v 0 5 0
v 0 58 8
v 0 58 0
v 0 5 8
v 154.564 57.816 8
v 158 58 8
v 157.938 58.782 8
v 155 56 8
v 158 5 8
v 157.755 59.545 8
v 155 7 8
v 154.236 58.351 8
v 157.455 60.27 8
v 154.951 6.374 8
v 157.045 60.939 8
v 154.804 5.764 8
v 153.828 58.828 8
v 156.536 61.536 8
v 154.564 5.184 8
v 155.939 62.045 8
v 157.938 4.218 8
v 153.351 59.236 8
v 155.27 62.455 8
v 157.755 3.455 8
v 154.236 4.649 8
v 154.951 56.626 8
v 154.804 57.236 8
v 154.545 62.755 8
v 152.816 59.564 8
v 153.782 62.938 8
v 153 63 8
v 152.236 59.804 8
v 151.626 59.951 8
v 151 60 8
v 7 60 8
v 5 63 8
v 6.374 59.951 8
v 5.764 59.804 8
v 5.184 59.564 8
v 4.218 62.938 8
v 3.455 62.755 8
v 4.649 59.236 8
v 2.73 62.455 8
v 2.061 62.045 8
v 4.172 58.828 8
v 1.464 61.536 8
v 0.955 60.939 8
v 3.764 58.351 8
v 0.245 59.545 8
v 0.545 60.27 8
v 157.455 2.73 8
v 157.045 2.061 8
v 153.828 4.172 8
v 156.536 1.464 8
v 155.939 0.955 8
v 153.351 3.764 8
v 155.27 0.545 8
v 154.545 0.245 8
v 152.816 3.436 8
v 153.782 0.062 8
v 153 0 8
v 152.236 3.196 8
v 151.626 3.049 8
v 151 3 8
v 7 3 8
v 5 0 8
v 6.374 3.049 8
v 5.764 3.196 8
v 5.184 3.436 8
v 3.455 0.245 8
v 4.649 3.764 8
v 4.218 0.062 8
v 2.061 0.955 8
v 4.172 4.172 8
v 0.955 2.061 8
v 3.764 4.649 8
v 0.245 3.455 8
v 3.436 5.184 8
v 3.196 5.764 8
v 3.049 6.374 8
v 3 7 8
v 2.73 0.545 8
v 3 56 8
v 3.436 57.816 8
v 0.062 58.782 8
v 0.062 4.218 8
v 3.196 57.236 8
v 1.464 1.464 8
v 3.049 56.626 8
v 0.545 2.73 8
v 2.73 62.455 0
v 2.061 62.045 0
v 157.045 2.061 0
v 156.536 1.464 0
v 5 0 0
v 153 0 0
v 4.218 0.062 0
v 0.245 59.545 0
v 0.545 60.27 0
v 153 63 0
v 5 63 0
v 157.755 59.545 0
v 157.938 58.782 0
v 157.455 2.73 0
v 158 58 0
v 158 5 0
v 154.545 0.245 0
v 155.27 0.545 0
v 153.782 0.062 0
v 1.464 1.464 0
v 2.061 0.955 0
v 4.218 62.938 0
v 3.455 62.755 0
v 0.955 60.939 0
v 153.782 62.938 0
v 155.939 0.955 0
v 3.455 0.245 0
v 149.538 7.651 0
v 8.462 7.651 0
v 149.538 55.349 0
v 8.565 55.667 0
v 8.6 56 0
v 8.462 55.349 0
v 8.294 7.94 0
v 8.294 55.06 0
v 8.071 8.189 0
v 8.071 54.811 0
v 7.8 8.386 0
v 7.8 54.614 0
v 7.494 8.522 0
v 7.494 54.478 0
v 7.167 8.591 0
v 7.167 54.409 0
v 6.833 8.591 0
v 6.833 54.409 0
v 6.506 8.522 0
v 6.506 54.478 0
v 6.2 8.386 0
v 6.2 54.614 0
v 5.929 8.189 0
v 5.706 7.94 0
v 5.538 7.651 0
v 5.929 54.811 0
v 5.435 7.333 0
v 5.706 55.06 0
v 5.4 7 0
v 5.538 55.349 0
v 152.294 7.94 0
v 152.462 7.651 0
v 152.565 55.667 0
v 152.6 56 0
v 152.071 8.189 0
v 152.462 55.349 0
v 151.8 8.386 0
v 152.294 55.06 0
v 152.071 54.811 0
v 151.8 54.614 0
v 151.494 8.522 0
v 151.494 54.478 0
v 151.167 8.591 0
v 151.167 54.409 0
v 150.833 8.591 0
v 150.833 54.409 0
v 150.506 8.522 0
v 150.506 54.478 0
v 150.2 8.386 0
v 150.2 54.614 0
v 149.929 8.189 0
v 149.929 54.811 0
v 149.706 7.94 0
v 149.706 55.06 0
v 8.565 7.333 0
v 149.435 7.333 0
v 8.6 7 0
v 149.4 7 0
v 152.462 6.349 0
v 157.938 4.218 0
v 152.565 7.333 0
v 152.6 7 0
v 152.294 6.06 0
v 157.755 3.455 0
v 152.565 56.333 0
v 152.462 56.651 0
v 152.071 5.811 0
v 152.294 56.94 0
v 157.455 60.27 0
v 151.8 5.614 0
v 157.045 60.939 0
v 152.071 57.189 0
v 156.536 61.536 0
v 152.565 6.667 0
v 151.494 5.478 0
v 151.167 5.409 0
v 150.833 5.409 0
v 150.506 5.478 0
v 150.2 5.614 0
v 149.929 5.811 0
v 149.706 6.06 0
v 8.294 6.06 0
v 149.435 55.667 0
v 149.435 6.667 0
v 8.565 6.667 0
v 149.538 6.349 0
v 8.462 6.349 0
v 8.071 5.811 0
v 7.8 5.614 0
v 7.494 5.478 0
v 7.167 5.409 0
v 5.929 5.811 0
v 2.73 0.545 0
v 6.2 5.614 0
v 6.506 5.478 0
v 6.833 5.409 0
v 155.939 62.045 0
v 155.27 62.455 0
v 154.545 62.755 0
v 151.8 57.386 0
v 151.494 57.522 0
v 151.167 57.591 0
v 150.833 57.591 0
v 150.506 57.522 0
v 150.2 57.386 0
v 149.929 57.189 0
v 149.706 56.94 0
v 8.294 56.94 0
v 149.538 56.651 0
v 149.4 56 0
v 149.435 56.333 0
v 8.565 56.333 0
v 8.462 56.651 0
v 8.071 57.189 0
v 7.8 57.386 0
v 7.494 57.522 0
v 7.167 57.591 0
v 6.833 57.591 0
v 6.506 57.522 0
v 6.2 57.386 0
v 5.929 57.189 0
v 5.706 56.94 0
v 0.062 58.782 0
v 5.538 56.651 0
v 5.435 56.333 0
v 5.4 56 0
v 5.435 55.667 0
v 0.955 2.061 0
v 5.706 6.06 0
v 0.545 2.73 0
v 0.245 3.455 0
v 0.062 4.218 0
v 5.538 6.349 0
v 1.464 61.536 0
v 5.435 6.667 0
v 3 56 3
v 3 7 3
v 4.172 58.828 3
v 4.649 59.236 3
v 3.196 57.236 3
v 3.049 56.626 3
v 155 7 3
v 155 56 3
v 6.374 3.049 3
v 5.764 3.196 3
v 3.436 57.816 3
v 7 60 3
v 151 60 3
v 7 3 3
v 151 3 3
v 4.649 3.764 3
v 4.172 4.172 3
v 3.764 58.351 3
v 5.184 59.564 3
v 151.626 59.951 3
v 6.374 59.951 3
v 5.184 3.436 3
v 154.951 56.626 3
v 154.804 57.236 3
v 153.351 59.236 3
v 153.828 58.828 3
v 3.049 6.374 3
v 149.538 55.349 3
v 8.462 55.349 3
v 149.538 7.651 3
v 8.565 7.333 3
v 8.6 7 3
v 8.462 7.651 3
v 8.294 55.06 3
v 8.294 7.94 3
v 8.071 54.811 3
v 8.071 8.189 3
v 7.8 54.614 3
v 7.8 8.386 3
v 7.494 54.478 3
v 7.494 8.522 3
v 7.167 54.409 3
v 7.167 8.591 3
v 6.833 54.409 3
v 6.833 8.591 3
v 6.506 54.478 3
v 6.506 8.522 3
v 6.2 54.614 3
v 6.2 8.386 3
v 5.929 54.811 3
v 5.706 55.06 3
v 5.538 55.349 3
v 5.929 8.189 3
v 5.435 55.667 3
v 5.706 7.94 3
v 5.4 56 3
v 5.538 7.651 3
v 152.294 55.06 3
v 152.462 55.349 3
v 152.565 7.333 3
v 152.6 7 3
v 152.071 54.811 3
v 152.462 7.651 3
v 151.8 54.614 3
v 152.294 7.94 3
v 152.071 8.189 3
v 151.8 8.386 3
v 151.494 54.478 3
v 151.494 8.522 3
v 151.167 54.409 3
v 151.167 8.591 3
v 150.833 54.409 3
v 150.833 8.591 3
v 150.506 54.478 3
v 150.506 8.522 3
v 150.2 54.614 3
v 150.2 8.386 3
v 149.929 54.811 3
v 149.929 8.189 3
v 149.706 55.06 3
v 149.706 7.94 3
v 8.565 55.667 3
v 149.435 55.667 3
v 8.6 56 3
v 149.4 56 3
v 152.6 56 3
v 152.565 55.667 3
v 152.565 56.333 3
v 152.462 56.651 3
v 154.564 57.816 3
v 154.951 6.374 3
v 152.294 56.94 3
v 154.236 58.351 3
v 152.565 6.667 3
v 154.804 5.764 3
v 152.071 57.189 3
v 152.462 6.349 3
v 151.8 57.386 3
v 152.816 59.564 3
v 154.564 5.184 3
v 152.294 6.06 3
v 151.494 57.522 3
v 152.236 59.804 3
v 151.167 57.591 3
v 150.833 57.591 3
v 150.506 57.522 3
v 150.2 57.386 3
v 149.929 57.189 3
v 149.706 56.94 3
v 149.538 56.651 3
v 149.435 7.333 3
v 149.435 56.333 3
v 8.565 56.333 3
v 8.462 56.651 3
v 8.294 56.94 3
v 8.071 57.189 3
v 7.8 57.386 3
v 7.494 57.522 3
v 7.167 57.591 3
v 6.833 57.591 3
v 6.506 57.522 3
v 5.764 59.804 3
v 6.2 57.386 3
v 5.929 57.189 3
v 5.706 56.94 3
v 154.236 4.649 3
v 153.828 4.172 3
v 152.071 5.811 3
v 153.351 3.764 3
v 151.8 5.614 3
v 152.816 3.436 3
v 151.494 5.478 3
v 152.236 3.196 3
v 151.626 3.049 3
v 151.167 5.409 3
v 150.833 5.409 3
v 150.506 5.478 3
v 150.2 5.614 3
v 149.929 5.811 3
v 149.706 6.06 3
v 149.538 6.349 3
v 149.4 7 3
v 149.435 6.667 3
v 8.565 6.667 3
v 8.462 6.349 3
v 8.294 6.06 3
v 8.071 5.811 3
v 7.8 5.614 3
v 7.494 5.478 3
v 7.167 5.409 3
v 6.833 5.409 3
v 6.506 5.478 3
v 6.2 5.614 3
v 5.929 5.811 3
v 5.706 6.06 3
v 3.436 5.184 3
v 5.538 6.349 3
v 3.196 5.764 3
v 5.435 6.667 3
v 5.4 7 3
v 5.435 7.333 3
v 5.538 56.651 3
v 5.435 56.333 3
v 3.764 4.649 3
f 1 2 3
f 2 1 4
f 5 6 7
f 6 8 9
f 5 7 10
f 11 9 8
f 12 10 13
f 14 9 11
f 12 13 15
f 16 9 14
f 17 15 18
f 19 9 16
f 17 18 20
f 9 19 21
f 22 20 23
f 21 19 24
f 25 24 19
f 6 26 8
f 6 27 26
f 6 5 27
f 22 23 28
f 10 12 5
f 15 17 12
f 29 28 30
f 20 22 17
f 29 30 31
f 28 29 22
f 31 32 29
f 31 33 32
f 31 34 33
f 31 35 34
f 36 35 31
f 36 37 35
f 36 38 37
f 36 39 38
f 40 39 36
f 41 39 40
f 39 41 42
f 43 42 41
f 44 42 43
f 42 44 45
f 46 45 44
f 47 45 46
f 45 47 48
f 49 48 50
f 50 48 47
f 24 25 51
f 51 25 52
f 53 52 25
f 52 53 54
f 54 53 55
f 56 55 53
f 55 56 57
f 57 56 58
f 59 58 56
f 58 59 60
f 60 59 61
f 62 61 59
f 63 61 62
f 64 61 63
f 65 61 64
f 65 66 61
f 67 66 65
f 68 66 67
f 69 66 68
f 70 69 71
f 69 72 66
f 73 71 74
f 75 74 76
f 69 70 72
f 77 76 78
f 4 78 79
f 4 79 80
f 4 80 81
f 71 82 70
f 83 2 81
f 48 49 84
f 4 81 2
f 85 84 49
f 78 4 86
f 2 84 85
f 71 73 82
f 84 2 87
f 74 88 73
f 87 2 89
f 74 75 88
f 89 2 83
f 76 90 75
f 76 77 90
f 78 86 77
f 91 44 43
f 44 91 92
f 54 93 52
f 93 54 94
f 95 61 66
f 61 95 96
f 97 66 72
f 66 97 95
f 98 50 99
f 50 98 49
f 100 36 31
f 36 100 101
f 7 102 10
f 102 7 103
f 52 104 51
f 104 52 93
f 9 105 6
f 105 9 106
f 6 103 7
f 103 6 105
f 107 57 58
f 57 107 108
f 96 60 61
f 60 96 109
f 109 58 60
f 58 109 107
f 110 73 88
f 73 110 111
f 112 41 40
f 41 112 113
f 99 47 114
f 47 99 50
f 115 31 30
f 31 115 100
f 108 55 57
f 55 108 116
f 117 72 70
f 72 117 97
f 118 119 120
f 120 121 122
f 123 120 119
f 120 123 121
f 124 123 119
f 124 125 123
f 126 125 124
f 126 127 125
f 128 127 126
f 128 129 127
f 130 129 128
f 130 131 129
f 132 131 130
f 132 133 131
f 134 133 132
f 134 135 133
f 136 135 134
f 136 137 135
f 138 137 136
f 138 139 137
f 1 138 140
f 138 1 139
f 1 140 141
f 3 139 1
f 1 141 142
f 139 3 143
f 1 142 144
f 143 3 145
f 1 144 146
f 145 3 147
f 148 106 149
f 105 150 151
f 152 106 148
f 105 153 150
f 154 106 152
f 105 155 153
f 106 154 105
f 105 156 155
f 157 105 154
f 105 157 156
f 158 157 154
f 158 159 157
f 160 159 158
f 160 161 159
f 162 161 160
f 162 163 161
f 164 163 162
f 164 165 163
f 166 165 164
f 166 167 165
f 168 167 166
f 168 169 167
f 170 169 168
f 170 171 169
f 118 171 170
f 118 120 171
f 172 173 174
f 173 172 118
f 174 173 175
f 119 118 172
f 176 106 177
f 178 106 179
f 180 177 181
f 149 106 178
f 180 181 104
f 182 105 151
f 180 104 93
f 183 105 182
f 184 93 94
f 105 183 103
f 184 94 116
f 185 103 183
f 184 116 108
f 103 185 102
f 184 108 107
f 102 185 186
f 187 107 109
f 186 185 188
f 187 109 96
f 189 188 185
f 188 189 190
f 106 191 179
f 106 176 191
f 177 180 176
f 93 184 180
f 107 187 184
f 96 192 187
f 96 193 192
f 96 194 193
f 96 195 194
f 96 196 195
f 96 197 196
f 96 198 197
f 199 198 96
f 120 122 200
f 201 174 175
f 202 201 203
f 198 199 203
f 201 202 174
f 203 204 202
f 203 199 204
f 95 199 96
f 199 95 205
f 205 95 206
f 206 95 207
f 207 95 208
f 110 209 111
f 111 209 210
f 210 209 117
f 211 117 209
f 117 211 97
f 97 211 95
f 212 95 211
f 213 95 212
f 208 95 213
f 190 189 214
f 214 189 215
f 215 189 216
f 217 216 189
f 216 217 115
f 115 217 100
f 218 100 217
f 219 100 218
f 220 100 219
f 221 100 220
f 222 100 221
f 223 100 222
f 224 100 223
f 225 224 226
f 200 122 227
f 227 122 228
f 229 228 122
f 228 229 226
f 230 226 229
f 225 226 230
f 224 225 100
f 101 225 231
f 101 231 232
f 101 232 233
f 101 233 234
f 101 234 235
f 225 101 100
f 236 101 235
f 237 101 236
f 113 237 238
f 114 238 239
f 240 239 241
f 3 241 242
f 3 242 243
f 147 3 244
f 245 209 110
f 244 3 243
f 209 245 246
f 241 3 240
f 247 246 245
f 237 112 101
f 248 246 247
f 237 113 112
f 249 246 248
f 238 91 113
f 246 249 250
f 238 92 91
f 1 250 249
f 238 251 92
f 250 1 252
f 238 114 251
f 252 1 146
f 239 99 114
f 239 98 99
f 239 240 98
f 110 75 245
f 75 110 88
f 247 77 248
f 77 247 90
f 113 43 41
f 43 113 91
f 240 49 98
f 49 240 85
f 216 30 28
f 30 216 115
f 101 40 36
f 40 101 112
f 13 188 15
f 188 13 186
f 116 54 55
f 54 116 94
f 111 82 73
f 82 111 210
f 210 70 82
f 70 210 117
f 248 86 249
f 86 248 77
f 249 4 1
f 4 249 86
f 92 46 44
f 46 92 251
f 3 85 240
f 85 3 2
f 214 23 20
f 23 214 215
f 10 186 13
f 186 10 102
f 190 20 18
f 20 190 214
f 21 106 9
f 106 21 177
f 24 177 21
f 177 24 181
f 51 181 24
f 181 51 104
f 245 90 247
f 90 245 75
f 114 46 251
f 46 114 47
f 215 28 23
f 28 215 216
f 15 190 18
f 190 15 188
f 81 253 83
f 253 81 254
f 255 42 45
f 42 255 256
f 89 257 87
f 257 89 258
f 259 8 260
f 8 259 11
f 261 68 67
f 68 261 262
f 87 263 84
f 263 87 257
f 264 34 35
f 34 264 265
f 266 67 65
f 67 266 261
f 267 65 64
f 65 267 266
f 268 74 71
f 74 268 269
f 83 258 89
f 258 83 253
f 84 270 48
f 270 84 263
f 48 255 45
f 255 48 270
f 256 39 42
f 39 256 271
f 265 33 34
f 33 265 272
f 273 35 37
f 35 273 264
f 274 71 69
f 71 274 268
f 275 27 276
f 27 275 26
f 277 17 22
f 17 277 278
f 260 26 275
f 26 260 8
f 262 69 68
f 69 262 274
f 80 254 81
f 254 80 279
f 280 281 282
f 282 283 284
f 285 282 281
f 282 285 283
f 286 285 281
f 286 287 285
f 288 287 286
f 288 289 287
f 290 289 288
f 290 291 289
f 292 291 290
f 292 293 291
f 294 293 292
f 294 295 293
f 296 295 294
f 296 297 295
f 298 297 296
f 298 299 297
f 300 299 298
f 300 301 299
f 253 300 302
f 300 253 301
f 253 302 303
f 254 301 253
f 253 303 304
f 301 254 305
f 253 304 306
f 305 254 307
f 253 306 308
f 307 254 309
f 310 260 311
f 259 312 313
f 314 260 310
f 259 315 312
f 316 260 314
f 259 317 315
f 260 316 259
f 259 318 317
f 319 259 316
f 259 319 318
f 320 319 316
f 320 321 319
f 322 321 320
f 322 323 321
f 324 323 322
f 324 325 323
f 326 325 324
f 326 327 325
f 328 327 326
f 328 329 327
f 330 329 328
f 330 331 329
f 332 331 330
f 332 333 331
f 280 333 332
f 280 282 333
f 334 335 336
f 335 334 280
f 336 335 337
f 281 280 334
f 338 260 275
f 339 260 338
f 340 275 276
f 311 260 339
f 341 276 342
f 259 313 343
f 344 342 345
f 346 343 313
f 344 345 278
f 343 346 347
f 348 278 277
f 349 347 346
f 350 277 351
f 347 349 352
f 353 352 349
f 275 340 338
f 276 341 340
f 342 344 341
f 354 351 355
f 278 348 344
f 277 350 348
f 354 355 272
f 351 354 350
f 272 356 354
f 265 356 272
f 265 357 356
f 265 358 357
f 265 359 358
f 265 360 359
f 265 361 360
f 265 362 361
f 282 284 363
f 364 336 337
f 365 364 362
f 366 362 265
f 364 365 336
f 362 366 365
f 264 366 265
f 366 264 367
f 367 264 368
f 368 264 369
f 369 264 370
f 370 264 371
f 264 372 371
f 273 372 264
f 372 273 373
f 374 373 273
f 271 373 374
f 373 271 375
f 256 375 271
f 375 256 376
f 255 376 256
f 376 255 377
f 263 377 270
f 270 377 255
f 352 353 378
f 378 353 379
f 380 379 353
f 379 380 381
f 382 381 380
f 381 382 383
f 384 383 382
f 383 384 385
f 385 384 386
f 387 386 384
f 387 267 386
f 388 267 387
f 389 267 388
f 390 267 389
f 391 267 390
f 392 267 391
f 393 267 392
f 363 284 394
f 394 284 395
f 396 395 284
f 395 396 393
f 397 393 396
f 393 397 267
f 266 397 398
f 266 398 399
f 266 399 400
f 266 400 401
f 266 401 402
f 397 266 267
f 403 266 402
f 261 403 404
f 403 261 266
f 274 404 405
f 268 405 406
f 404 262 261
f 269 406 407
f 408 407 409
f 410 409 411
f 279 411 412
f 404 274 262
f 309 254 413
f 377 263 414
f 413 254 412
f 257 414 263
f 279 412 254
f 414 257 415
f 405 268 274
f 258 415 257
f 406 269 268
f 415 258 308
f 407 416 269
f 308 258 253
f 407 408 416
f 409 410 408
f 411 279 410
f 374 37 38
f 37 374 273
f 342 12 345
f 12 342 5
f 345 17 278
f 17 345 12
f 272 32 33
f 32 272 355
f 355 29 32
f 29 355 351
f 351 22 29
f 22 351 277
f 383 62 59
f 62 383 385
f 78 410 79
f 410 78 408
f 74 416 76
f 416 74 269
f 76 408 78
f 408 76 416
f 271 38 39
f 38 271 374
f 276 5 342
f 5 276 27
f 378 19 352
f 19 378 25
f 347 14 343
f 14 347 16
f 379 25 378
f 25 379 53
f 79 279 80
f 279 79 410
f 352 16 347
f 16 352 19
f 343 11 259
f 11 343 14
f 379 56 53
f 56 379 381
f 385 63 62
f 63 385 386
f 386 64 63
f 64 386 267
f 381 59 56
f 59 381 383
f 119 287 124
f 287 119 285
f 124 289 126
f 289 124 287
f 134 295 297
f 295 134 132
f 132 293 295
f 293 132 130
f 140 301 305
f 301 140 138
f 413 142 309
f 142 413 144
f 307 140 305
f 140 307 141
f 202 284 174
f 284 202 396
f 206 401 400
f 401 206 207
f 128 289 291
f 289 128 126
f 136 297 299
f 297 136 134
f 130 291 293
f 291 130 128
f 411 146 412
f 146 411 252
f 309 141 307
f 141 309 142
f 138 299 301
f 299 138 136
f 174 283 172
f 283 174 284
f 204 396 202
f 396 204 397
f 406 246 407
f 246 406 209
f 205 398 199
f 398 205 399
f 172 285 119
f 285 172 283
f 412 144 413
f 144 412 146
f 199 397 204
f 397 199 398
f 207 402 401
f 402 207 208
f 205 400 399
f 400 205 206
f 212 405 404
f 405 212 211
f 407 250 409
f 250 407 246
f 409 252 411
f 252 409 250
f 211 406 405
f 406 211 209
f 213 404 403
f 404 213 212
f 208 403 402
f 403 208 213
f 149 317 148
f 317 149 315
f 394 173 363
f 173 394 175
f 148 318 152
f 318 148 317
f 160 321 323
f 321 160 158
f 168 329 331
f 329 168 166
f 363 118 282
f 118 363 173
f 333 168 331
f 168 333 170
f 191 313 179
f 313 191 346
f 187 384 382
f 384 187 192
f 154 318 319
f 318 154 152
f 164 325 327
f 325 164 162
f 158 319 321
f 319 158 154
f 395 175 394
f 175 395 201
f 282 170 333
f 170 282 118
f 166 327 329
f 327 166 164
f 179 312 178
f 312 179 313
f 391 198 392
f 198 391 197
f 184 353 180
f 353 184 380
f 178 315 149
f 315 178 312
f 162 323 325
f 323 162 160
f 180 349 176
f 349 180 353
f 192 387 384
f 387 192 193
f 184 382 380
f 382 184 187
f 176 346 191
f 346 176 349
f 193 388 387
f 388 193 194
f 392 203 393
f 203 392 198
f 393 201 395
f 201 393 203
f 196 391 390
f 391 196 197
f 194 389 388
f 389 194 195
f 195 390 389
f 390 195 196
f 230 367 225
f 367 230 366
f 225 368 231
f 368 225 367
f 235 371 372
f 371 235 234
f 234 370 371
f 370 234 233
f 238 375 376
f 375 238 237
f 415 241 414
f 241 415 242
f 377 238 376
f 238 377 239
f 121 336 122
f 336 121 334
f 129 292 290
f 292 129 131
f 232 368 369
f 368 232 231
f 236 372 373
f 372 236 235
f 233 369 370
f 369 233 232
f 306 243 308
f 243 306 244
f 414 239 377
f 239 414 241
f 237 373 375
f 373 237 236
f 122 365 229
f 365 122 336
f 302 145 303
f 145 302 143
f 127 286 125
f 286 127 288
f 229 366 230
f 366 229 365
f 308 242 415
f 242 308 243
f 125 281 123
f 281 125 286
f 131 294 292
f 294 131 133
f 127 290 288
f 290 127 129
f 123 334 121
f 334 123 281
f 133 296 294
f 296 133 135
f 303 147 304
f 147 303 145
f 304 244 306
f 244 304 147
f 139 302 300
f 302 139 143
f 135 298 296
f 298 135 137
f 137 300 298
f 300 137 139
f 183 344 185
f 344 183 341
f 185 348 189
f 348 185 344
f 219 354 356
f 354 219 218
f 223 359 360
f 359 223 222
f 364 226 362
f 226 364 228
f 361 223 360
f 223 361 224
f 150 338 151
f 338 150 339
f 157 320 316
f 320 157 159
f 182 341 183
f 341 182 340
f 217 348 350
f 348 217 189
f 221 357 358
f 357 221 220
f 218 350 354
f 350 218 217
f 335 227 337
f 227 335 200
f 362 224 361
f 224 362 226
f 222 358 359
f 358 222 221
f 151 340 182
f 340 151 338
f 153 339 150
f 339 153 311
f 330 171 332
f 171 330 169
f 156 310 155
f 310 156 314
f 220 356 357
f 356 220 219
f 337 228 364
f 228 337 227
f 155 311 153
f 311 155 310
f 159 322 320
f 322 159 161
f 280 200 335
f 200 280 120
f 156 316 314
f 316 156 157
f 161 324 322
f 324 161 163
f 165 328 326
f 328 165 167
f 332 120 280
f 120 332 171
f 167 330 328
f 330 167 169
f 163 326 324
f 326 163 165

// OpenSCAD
//======================================================
// DUAL ENCLOSURE - TOP COVER (LID) ONLY
// DESIGNED FOR: RASPBERRY PI 3B + ESP32 NODEMCU BASE
//======================================================

//======================================================
// BOX CONFIGURATION VARIABLES (Must exactly match base)
//======================================================
wall = 3;

// Official Board Dimensions
pi_l = 85.0;
pi_w = 56.0;
esp_l = 52.0;
esp_w = 28.5;
clearance = 0.5;

// Exact footprint from the base calculations
box_length = wall + pi_l + 15 + esp_l + wall; 
box_width  = wall + pi_w + clearance*2 + wall;
corner = 5;

//======================================================
// TOP COVER
//======================================================
difference() {

    //--------------------------------------------------
    // OUTER LID BODY
    //--------------------------------------------------
    roundedBox(box_length, box_width, 8, corner);

    //--------------------------------------------------
    // INNER LIP HOLLOWING
    //--------------------------------------------------
    translate([wall, wall, wall])
    roundedBox(
        box_length - wall*2,
        box_width - wall*2,
        8,
        corner-1
    );

    //--------------------------------------------------
    // THROUGH-HOLES FOR M3 CORNER MOUNT SCREWS
    // Exact matching spacing layout from the base pillars
    //--------------------------------------------------
    translate([wall+4, wall+4, -1])                   cylinder(h=15, d=3.2, $fn=30);
    translate([box_length-wall-4, wall+4, -1])        cylinder(h=15, d=3.2, $fn=30);
    translate([wall+4, box_width-wall-4, -1])         cylinder(h=15, d=3.2, $fn=30);
    translate([box_length-wall-4, box_width-wall-4, -1]) cylinder(h=15, d=3.2, $fn=30);

}

//======================================================
// MODULE DEFINITION
//======================================================
module roundedBox(l, w, h, r){
    hull(){
        translate([r, r, 0])     cylinder(r=r, h=h, $fn=40);
        translate([l-r, r, 0])   cylinder(r=r, h=h, $fn=40);
        translate([r, w-r, 0])   cylinder(r=r, h=h, $fn=40);
        translate([l-r, w-r, 0]) cylinder(r=r, h=h, $fn=40);
    }
}
